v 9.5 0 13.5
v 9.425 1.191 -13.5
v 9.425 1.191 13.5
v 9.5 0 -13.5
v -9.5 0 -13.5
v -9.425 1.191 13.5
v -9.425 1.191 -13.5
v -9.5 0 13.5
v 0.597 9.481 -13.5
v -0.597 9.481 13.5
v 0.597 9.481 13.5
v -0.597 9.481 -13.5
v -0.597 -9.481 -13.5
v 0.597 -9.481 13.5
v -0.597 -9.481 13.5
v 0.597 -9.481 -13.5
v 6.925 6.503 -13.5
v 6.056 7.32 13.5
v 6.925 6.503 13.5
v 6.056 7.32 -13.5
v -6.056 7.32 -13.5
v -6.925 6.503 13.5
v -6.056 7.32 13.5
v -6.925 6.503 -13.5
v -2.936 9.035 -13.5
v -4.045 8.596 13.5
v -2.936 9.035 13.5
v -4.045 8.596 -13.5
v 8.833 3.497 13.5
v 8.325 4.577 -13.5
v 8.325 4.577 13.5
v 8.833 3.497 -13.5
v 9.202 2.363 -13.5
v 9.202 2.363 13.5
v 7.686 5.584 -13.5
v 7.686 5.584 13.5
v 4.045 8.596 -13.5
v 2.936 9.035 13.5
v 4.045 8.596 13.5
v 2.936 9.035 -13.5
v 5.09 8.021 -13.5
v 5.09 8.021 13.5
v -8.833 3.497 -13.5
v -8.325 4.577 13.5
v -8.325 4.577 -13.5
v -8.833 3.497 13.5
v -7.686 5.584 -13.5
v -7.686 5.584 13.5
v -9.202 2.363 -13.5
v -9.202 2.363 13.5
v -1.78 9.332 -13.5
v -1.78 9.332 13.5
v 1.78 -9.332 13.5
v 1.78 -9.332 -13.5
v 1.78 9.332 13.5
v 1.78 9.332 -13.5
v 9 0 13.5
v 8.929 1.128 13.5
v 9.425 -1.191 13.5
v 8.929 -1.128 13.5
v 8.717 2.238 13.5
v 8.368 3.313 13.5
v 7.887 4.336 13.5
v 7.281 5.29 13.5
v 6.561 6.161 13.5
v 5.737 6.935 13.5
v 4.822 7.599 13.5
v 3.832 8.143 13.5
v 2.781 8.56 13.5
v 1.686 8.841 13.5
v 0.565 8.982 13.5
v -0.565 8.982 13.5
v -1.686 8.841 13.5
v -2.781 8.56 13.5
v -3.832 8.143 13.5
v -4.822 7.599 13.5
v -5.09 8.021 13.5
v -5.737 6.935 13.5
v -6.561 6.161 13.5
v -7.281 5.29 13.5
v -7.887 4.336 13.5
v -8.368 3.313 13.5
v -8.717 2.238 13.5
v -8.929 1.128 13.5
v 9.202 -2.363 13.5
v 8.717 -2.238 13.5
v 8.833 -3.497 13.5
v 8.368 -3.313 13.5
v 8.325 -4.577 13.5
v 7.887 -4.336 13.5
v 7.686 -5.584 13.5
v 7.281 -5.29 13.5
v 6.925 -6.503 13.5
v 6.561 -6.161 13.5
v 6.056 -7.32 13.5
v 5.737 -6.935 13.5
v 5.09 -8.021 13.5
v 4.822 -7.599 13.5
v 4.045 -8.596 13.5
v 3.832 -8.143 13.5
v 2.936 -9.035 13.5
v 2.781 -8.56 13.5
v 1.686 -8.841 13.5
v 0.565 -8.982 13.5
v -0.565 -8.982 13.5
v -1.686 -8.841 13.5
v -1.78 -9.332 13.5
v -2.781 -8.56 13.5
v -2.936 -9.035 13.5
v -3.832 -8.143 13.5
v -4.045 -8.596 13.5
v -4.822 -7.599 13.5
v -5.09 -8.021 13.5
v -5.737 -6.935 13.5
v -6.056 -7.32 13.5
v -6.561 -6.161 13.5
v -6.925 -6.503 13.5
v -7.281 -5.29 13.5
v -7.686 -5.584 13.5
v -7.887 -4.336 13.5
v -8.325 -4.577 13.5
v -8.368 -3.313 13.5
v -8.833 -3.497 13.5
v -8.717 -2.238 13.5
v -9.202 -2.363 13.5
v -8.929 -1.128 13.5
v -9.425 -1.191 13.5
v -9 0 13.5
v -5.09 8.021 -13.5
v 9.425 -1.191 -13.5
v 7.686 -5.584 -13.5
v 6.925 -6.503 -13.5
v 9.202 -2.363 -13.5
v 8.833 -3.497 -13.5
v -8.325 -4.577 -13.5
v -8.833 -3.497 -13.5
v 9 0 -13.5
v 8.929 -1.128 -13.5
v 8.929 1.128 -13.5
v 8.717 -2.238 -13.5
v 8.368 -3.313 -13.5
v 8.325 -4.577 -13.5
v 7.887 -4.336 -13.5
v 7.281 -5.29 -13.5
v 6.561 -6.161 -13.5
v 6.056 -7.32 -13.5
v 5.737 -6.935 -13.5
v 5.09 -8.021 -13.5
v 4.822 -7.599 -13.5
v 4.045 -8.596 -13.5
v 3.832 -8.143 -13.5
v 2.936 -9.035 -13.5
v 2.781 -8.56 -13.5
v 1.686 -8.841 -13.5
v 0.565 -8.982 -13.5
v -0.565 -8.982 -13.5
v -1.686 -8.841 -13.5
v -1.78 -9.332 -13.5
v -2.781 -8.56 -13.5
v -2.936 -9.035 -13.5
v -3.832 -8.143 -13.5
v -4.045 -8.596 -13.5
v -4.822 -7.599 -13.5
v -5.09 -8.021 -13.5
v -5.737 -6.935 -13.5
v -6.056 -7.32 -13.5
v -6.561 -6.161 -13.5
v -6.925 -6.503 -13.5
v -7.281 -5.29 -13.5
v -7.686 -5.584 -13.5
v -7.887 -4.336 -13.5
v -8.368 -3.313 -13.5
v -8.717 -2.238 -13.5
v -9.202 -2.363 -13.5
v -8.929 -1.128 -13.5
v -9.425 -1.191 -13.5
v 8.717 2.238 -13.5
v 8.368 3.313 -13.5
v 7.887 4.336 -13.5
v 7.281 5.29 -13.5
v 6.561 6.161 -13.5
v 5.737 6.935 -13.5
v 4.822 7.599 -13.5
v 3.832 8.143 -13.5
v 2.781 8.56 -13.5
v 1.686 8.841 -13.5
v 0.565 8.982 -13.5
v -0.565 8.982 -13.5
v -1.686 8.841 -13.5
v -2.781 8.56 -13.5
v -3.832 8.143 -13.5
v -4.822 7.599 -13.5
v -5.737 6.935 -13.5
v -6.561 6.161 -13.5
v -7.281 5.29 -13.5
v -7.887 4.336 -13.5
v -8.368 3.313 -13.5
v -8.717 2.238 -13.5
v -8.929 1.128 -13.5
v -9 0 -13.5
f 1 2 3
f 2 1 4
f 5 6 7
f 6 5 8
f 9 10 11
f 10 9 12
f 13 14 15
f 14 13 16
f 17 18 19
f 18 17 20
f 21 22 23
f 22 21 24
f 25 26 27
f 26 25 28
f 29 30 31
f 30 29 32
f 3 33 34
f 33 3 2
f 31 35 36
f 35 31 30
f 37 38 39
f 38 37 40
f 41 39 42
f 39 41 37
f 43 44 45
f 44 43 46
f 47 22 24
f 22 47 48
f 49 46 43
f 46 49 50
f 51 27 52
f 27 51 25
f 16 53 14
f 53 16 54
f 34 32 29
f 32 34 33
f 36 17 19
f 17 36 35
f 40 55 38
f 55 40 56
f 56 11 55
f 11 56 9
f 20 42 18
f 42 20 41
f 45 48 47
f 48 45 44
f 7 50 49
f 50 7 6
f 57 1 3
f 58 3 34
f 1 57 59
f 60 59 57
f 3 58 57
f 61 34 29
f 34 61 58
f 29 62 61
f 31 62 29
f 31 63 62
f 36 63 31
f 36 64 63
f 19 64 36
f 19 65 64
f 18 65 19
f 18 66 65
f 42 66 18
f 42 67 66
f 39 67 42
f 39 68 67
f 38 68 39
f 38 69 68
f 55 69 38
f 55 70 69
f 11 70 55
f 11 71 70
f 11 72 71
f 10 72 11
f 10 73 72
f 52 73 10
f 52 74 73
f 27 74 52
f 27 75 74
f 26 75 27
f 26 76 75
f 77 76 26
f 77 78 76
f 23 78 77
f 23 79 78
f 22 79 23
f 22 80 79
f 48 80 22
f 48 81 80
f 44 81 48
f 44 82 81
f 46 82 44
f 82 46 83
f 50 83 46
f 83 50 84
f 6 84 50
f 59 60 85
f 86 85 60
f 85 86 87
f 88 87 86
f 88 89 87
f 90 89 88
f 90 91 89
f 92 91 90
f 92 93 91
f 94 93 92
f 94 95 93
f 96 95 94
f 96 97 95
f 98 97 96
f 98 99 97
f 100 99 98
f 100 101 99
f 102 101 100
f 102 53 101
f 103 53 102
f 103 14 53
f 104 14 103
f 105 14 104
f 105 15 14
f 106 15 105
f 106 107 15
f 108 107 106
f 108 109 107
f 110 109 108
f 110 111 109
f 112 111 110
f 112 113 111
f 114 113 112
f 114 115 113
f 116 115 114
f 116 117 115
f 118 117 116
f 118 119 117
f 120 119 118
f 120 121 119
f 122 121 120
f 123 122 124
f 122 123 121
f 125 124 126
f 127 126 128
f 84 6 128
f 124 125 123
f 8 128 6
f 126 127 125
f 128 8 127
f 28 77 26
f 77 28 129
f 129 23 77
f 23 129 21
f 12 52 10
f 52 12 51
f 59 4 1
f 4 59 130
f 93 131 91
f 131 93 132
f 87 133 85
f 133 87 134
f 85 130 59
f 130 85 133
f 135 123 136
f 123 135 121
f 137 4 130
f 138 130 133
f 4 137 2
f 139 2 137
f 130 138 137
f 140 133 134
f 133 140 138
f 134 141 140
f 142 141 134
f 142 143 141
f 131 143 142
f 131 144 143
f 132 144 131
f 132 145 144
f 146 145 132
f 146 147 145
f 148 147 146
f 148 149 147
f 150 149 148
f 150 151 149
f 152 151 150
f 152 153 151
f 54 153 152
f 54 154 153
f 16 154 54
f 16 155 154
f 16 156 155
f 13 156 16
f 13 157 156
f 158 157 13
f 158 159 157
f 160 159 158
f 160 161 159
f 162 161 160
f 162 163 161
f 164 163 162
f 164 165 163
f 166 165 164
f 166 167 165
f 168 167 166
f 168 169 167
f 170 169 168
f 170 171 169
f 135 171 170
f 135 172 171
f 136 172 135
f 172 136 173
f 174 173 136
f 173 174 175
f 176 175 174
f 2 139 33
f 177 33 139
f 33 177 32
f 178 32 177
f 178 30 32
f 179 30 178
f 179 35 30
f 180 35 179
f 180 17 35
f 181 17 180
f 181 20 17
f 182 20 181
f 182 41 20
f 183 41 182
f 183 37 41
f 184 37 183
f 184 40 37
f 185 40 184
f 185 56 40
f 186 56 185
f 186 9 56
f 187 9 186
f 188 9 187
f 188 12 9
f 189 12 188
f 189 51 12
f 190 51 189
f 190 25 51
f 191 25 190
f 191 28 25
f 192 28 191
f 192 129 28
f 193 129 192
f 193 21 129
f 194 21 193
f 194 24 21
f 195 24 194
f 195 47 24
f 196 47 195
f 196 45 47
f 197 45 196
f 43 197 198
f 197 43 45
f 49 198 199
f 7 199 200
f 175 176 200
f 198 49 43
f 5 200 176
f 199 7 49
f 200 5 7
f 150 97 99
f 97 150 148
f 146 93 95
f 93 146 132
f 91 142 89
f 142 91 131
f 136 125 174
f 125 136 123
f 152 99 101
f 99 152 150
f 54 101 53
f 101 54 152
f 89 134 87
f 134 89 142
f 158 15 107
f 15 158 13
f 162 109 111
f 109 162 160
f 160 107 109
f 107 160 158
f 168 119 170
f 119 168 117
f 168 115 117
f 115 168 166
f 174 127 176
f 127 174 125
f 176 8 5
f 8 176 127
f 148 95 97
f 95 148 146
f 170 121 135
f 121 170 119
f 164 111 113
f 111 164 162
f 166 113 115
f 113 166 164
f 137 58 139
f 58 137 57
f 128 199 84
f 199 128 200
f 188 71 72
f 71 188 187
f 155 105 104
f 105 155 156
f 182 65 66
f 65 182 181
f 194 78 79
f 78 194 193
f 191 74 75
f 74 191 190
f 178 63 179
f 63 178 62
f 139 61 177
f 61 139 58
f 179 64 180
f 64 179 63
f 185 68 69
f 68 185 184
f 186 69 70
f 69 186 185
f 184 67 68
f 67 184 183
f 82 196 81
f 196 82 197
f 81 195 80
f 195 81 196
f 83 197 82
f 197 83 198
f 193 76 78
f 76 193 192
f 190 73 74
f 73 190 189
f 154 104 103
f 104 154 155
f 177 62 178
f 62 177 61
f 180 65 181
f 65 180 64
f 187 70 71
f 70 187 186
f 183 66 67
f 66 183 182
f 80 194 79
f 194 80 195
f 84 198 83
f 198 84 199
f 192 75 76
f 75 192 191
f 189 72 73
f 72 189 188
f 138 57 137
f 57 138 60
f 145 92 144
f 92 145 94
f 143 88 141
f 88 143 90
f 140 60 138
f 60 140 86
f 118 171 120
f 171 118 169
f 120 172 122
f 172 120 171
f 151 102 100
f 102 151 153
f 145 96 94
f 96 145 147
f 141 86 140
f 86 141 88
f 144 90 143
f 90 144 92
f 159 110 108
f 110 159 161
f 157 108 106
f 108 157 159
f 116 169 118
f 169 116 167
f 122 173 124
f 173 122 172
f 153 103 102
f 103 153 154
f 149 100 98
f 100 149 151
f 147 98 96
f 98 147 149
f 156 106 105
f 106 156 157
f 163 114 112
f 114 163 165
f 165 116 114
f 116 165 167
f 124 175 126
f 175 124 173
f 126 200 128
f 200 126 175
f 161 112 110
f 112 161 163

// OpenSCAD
$fn = 50;


difference() {
	union() {
		translate(v = [0, 0, -13.5000000000]) {
			cylinder(h = 27, r = 9.5000000000);
		}
	}
	union() {
		translate(v = [0, 0, -100.0000000000]) {
			cylinder(h = 200, r = 9);
		}
	}
}
